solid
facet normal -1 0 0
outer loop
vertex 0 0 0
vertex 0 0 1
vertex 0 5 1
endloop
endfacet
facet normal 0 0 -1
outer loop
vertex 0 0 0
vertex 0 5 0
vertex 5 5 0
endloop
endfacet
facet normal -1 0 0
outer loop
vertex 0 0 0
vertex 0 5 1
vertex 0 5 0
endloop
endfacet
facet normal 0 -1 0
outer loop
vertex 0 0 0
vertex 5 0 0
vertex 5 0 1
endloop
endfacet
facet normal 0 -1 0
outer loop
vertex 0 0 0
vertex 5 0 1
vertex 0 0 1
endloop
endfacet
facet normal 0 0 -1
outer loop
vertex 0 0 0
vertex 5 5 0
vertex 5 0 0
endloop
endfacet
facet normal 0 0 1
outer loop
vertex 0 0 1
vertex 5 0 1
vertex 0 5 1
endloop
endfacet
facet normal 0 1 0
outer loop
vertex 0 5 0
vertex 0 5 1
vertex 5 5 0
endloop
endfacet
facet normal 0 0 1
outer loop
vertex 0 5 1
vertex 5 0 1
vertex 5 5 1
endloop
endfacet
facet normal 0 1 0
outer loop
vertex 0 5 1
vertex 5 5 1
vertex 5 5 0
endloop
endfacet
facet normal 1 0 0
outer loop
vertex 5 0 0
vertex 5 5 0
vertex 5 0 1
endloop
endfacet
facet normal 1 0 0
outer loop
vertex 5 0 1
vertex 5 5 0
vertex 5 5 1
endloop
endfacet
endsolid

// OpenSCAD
/* Warning, this is a very basic generator with a lot of approximation 
input data : [VFBGA, CTB, 5x5x1mm, 49, , B, C04-21168B]
generated by com.zoubworld.electronics.cad.model3d.Basic
Date : Sun Feb 15 10:50:49 CET 2026
*/

//body
color("black")
translate([0,0,0])
cube([5.0,5.0,1.0], center=false);
